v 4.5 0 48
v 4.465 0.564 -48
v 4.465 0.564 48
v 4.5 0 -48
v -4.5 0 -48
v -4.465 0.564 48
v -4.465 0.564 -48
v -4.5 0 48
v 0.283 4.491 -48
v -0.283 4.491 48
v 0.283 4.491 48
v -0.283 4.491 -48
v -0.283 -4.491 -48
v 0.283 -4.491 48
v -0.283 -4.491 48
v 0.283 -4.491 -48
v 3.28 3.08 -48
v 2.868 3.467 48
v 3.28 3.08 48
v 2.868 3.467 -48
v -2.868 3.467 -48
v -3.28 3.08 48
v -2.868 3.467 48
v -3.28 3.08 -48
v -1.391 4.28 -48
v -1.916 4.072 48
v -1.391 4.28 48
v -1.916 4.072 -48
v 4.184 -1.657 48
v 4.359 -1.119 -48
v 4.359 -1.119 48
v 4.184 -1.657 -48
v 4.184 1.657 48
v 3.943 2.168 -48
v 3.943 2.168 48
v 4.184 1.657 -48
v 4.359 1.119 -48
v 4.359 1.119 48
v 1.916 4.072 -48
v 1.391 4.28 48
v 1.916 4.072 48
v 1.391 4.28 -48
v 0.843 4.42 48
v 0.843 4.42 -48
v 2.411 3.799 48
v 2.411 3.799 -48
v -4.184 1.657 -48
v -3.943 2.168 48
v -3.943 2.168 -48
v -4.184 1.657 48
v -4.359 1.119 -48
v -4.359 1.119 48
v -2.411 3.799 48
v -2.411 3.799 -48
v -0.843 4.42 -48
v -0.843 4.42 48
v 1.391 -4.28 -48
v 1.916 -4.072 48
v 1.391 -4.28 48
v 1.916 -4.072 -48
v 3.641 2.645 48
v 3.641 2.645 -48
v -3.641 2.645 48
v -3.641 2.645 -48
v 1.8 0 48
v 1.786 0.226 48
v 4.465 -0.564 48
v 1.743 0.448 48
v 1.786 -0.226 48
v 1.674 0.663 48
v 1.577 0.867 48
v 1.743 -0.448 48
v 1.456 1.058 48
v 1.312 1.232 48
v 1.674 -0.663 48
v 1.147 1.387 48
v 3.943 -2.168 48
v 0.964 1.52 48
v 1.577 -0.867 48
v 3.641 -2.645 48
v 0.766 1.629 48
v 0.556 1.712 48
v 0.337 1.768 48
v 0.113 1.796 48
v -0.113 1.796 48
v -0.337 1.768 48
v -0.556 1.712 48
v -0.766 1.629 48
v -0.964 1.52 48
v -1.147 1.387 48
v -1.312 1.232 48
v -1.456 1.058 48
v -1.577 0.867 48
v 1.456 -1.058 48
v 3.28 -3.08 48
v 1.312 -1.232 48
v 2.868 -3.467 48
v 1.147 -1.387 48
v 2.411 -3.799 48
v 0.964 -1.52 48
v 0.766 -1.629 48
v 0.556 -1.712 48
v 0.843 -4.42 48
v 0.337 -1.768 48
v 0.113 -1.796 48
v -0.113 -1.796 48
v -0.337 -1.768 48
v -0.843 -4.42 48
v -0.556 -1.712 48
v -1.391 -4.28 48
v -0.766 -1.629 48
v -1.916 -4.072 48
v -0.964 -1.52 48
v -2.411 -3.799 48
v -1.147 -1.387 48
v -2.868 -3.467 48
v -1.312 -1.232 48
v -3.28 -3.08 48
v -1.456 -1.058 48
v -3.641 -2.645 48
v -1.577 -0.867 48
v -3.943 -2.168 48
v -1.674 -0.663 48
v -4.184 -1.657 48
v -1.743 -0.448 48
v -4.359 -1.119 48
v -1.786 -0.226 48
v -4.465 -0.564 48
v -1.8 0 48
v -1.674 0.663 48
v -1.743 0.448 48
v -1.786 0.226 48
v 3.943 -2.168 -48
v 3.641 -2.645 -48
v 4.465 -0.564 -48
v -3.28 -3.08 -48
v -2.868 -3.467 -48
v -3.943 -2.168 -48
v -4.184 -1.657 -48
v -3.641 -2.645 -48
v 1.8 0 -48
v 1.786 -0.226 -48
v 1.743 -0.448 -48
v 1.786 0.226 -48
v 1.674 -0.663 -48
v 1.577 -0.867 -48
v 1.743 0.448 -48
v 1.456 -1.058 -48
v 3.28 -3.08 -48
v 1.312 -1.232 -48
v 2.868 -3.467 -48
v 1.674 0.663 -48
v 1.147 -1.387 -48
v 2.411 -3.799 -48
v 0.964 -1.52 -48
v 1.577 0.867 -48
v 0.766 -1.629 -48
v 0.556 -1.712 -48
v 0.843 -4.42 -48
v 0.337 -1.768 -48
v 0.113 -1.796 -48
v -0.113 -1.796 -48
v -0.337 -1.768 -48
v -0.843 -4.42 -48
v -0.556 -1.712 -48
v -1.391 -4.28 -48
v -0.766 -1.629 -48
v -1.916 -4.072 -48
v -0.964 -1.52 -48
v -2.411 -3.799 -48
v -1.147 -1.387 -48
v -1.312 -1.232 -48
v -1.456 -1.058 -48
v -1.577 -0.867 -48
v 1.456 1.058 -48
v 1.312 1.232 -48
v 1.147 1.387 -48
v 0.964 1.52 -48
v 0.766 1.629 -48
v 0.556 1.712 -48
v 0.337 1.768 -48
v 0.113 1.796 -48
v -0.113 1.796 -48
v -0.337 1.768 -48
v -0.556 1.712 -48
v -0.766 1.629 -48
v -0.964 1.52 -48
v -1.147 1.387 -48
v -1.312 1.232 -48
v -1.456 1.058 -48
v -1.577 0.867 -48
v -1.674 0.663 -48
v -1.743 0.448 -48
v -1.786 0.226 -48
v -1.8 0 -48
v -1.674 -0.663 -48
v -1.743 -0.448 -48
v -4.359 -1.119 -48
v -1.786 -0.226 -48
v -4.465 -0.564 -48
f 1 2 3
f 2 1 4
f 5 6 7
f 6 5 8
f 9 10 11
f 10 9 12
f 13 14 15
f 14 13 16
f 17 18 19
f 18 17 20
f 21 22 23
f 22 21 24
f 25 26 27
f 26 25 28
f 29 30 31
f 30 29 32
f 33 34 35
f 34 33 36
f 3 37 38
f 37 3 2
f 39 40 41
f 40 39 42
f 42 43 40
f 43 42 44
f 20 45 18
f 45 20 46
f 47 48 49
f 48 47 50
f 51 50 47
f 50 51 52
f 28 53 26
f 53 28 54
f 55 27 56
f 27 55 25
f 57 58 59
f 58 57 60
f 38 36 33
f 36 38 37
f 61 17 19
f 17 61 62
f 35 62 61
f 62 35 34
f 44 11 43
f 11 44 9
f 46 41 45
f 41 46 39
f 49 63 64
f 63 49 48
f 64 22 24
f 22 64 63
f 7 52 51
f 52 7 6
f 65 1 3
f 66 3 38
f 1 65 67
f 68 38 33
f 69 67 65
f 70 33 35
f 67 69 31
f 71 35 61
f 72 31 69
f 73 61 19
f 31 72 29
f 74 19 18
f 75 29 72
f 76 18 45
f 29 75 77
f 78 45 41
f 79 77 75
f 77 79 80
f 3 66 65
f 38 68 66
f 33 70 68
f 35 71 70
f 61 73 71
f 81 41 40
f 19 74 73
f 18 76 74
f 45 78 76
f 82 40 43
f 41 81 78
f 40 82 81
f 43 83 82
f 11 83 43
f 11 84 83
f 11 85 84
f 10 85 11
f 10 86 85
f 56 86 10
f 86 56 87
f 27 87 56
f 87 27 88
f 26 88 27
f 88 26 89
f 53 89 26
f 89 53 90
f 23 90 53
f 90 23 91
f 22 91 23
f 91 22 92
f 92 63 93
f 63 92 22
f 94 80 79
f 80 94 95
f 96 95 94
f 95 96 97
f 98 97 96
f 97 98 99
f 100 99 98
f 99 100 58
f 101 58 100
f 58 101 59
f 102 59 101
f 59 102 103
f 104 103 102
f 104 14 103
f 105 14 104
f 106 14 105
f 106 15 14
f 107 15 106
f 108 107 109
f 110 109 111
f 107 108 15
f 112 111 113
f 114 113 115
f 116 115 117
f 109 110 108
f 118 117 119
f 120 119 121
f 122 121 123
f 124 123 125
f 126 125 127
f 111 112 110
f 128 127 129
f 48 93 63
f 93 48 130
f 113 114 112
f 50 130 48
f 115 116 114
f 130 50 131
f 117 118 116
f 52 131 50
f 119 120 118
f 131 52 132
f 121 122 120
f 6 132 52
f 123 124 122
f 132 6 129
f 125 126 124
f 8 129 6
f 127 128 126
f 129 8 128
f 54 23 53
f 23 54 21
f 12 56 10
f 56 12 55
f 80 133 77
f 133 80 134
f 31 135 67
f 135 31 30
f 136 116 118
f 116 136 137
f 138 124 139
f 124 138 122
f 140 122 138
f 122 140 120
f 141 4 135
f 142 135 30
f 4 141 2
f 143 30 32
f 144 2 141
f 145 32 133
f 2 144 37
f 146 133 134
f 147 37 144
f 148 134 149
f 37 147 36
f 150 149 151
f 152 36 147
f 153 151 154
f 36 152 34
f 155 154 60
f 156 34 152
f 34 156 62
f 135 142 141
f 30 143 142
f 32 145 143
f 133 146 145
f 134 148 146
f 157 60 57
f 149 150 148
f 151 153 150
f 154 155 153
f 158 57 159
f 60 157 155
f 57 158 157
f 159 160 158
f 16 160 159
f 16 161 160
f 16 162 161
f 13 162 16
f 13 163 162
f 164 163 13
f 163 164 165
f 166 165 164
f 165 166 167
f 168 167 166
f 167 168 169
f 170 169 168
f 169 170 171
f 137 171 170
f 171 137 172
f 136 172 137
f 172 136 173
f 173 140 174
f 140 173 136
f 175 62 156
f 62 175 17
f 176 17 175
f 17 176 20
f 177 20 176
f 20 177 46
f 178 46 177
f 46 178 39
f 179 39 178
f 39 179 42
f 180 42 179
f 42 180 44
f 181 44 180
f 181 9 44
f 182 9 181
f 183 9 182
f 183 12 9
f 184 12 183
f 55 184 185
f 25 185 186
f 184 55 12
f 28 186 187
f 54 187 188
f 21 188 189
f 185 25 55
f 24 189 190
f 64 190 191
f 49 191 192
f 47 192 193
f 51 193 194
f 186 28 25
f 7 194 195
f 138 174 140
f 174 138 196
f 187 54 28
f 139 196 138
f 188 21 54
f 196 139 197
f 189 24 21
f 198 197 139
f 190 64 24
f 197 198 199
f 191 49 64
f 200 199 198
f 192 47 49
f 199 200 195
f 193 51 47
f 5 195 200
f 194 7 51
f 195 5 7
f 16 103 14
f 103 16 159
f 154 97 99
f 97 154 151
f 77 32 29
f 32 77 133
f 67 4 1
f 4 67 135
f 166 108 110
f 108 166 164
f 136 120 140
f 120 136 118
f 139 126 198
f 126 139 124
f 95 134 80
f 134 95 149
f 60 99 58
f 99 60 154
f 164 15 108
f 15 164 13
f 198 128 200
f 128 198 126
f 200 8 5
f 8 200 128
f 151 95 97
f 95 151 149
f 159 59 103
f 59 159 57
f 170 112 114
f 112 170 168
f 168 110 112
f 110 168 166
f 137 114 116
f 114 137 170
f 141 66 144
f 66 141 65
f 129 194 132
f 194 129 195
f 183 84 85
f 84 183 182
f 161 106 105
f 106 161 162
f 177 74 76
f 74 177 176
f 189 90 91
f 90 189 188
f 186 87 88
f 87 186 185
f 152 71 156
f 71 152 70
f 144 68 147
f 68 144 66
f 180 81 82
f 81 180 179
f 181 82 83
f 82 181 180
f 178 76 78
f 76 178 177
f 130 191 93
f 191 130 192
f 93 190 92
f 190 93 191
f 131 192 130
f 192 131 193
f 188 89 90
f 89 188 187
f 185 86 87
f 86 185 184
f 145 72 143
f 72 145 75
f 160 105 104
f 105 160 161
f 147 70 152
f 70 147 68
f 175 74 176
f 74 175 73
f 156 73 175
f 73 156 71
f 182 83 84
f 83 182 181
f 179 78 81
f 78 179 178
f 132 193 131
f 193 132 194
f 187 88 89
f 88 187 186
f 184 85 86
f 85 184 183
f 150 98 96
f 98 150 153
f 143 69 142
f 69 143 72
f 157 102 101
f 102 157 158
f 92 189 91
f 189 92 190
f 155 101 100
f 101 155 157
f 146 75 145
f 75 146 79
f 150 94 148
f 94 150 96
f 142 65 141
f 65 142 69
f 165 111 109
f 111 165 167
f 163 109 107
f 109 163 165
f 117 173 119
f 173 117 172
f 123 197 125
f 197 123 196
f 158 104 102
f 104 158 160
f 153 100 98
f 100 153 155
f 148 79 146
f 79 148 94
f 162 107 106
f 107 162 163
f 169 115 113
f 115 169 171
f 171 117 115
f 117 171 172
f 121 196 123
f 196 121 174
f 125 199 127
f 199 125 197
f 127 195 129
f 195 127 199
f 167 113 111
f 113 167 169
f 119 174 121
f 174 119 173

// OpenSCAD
$fn = 50;


difference() {
	union() {
		translate(v = [0, 0, -48.0000000000]) {
			cylinder(h = 96, r = 4.5000000000);
		}
	}
	union() {
		translate(v = [0, 0, -100.0000000000]) {
			cylinder(h = 200, r = 1.8000000000);
		}
	}
}
